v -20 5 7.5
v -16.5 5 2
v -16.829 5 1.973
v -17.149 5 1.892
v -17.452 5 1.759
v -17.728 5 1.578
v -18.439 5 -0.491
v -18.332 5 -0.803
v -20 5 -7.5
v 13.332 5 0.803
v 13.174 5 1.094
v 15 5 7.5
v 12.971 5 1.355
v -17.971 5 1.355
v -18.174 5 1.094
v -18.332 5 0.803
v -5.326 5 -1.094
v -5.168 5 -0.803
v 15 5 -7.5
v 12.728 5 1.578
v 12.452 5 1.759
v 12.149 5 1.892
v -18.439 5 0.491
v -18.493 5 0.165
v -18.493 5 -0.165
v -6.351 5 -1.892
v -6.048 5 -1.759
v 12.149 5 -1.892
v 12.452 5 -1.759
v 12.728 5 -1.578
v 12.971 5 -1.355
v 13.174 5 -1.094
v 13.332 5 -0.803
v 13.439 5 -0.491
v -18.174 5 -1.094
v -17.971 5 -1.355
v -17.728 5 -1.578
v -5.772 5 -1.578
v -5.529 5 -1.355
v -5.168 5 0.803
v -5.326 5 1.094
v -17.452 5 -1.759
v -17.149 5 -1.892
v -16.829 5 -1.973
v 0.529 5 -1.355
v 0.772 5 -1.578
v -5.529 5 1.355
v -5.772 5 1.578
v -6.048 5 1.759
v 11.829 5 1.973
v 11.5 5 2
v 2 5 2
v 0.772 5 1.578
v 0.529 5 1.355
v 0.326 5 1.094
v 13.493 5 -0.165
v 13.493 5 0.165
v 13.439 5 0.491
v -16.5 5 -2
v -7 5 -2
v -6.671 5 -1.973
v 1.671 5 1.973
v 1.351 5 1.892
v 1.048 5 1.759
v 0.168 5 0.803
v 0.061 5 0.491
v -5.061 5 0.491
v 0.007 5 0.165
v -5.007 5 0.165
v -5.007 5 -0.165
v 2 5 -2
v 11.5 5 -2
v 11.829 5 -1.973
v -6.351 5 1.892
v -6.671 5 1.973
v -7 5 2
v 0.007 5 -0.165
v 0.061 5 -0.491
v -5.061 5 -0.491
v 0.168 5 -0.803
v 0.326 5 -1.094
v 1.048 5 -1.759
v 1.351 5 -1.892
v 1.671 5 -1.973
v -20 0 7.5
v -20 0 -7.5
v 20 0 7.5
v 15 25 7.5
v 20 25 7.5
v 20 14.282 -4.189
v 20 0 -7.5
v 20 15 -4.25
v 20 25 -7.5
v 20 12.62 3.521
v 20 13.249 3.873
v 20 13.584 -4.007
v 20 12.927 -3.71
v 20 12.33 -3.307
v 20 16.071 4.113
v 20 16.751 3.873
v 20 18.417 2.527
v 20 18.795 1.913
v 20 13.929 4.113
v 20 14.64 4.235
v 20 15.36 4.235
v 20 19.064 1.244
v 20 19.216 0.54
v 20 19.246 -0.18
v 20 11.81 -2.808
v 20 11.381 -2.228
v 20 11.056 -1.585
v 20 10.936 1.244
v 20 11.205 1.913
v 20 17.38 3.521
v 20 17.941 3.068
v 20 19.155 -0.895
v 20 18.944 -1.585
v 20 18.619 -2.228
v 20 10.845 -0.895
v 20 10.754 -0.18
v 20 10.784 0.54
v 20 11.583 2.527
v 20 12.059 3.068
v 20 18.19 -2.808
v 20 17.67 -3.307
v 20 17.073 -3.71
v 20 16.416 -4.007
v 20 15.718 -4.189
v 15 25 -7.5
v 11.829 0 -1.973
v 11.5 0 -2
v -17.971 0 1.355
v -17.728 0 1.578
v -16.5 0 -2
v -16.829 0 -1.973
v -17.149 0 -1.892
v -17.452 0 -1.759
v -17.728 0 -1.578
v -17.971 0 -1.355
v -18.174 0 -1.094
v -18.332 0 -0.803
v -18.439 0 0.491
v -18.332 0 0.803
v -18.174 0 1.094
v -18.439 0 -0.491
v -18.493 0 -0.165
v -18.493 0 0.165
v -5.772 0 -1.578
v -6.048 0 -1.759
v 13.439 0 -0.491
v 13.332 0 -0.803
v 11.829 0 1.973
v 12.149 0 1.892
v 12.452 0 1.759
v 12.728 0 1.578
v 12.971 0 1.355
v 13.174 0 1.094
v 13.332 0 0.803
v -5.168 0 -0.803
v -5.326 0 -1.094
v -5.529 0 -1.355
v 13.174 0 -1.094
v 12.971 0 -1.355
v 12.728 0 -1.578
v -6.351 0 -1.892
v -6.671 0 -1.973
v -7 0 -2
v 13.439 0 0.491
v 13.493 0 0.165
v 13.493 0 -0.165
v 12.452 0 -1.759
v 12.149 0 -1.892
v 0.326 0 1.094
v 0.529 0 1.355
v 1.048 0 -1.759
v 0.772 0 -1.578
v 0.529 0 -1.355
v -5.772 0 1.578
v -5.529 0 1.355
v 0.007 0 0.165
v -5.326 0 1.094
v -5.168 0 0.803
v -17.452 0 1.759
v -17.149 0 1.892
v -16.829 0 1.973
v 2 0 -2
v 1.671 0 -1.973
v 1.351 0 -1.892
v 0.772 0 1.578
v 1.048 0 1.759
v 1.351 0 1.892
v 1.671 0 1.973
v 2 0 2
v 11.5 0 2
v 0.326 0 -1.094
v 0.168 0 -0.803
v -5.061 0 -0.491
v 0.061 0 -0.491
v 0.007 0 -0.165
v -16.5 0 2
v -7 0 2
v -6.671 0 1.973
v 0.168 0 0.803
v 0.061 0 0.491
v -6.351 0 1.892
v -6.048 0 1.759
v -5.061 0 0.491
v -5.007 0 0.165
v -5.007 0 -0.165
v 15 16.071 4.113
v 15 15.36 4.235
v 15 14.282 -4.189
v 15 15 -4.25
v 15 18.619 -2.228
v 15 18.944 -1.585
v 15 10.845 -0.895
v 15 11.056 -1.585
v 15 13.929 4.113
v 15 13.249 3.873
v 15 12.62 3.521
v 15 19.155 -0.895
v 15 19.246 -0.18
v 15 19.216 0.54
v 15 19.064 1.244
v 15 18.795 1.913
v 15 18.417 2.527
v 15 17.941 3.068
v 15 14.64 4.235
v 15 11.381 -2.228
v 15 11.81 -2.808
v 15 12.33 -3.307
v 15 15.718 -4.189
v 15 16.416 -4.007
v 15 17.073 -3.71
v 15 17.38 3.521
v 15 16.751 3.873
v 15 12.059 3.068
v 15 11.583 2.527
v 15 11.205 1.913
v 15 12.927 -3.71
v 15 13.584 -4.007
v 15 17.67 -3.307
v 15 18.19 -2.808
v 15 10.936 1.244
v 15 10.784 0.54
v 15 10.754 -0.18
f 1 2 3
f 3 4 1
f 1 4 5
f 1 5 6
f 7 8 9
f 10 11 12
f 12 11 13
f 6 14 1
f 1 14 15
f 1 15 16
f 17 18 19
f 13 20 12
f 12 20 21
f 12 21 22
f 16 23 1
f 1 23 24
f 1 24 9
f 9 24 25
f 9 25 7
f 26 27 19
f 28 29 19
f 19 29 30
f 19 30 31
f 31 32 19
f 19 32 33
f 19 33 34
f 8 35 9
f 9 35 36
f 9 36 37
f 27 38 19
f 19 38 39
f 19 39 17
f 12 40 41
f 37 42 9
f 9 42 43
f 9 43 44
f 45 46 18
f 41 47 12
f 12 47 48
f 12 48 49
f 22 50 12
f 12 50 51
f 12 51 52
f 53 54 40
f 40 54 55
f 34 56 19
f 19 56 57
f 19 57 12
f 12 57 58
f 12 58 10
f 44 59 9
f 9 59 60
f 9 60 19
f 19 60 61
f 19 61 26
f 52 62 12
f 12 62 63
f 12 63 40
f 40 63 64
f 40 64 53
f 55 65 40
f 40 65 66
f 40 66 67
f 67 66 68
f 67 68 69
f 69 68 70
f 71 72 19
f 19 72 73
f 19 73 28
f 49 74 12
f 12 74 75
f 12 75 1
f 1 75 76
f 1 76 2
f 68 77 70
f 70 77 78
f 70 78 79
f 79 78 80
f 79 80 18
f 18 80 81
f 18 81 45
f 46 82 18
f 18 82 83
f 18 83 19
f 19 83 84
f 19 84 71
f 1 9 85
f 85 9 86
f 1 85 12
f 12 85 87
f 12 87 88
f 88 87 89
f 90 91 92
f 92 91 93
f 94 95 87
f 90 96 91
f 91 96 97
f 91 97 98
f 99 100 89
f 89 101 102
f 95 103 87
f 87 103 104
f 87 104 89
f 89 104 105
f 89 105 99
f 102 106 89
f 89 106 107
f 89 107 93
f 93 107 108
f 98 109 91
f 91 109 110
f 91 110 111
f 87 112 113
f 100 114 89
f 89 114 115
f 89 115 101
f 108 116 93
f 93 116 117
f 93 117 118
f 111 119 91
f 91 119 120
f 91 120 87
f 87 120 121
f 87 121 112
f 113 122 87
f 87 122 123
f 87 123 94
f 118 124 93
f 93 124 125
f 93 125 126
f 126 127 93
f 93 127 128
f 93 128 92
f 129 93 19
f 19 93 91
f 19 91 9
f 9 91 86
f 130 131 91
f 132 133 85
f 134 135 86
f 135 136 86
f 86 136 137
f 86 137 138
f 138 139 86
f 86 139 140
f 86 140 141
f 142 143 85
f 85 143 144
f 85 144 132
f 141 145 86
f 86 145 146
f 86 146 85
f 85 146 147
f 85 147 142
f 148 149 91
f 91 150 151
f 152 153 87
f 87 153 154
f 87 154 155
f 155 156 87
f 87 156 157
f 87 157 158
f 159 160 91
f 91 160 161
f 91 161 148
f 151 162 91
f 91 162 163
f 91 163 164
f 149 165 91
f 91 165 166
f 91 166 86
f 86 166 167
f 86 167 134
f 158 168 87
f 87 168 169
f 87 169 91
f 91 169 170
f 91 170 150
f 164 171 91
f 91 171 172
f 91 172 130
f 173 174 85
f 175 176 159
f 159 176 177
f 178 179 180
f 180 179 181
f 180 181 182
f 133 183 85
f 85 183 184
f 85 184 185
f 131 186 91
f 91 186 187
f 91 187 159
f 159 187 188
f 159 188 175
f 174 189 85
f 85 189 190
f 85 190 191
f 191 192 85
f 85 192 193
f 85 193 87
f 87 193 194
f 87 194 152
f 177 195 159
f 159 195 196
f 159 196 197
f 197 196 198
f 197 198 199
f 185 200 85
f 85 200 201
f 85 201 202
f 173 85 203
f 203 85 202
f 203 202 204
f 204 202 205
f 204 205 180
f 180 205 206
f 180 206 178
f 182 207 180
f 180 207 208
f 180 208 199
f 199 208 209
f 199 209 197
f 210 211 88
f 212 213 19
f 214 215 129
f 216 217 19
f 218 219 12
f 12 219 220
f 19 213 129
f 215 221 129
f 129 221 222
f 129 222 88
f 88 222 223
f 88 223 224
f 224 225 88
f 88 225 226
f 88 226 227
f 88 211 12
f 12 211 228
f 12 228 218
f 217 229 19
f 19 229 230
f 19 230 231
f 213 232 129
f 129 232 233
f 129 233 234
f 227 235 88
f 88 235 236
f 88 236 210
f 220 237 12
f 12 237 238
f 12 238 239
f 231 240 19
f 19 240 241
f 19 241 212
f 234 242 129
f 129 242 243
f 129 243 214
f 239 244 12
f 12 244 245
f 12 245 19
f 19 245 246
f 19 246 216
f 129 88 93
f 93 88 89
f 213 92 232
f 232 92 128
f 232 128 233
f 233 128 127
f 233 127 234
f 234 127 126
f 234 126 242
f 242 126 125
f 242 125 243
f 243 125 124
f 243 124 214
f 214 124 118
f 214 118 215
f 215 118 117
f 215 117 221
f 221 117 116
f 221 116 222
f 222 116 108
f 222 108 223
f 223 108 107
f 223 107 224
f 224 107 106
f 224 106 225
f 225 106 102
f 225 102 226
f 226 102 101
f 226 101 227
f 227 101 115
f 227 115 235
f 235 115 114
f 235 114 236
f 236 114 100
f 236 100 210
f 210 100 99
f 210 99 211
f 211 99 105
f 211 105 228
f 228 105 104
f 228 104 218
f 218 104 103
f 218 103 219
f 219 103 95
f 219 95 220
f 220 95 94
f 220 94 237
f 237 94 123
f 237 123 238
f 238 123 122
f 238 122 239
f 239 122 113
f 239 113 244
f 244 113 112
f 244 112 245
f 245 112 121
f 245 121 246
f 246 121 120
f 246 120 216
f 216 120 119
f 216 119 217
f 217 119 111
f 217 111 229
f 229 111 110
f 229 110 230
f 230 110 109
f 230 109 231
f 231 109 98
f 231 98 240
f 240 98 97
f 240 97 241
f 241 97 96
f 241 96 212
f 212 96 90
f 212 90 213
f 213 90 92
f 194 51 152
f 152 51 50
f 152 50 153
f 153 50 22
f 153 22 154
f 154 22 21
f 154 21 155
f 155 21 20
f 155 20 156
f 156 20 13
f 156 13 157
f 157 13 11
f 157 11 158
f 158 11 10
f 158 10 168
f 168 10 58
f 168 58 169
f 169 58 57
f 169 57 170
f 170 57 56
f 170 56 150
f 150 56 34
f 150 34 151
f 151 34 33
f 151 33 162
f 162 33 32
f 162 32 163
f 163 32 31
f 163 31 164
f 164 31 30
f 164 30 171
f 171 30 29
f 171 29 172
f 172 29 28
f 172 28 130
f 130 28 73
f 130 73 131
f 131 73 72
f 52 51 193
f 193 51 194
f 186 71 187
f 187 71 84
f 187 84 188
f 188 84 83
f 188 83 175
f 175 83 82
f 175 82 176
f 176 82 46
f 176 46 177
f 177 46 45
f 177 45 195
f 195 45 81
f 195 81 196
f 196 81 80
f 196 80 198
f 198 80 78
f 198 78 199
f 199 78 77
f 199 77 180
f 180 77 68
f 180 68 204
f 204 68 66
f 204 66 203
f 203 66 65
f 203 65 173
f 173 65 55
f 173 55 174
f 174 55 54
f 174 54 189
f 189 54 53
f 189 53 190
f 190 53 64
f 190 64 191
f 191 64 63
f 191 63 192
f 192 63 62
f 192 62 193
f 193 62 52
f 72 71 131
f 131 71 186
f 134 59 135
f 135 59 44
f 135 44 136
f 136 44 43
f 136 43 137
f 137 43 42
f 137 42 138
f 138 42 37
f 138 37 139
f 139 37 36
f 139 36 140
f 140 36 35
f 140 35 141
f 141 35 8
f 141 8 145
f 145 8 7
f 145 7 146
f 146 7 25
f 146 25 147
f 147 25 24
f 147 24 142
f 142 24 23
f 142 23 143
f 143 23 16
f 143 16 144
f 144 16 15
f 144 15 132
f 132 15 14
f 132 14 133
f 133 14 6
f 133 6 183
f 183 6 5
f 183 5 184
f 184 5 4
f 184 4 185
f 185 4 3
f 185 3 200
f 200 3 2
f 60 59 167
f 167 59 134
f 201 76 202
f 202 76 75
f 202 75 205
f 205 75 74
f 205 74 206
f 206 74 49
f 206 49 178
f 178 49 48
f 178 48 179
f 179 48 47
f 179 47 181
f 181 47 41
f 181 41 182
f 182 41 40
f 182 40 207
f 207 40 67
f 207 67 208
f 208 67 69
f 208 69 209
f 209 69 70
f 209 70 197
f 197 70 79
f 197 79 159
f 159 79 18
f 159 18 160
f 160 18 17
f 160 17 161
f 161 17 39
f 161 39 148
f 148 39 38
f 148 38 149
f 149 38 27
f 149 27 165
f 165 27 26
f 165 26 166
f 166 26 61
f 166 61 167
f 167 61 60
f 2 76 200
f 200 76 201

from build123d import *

# Parameters (mm, degrees)
CROQUIS1_W              = 40
CROQUIS1_H              = 15
SALIENTE_EXTRUIR1_DEPTH = 5
CROQUIS2_W              = 5
CROQUIS2_H              = 15
SALIENTE_EXTRUIR2_DEPTH = 20
CROQUIS3_R              = 4.25
CORTAR_EXTRUIR1_DEPTH   = 20
CORTAR_EXTRUIR2_DEPTH   = 20


with BuildPart() as part:
    # Croquis1 → Saliente-Extruir1 (new body)
    with BuildSketch(Plane(origin=(0, 0, 0), x_dir=(1, 0, 0), z_dir=(0, 1, 0))):
        Rectangle(CROQUIS1_W, CROQUIS1_H)
    extrude(amount=SALIENTE_EXTRUIR1_DEPTH)

    # Croquis2 → Saliente-Extruir2 (add)
    with BuildSketch(Plane(origin=(0, 5, 0), x_dir=(1, 0, 0), z_dir=(0, 1, 0))):
        with Locations((17.5, 0)):
            Rectangle(CROQUIS2_W, CROQUIS2_H)
    extrude(amount=SALIENTE_EXTRUIR2_DEPTH)

    # Croquis3 → Cortar-Extruir1 (cut)
    with BuildSketch(Plane(origin=(20, 0, 0), x_dir=(0, 0, -1), z_dir=(1, 0, 0))):
        with Locations((0, 15)):
            Circle(CROQUIS3_R)
    extrude(amount=-CORTAR_EXTRUIR1_DEPTH, mode=Mode.SUBTRACT)

    # Croquis4 → Cortar-Extruir2 (cut)
    with BuildSketch(Plane(origin=(0, 5, 0), x_dir=(1, 0, 0), z_dir=(0, 1, 0))):
        with BuildLine():
            Line((-16.5, 2), (-7, 2))
            ThreePointArc((-7, 2), (-5, 0), (-7, -2))
            Line((-7, -2), (-16.5, -2))
            ThreePointArc((-16.5, -2), (-18.5, 0), (-16.5, 2))
        make_face()
        with BuildLine():
            Line((11.5, -2), (2, -2))
            ThreePointArc((2, -2), (0, 0), (2, 2))
            Line((2, 2), (11.5, 2))
            ThreePointArc((11.5, 2), (13.5, 0), (11.5, -2))
        make_face()
    extrude(amount=-CORTAR_EXTRUIR2_DEPTH, mode=Mode.SUBTRACT)


solid = part.part
